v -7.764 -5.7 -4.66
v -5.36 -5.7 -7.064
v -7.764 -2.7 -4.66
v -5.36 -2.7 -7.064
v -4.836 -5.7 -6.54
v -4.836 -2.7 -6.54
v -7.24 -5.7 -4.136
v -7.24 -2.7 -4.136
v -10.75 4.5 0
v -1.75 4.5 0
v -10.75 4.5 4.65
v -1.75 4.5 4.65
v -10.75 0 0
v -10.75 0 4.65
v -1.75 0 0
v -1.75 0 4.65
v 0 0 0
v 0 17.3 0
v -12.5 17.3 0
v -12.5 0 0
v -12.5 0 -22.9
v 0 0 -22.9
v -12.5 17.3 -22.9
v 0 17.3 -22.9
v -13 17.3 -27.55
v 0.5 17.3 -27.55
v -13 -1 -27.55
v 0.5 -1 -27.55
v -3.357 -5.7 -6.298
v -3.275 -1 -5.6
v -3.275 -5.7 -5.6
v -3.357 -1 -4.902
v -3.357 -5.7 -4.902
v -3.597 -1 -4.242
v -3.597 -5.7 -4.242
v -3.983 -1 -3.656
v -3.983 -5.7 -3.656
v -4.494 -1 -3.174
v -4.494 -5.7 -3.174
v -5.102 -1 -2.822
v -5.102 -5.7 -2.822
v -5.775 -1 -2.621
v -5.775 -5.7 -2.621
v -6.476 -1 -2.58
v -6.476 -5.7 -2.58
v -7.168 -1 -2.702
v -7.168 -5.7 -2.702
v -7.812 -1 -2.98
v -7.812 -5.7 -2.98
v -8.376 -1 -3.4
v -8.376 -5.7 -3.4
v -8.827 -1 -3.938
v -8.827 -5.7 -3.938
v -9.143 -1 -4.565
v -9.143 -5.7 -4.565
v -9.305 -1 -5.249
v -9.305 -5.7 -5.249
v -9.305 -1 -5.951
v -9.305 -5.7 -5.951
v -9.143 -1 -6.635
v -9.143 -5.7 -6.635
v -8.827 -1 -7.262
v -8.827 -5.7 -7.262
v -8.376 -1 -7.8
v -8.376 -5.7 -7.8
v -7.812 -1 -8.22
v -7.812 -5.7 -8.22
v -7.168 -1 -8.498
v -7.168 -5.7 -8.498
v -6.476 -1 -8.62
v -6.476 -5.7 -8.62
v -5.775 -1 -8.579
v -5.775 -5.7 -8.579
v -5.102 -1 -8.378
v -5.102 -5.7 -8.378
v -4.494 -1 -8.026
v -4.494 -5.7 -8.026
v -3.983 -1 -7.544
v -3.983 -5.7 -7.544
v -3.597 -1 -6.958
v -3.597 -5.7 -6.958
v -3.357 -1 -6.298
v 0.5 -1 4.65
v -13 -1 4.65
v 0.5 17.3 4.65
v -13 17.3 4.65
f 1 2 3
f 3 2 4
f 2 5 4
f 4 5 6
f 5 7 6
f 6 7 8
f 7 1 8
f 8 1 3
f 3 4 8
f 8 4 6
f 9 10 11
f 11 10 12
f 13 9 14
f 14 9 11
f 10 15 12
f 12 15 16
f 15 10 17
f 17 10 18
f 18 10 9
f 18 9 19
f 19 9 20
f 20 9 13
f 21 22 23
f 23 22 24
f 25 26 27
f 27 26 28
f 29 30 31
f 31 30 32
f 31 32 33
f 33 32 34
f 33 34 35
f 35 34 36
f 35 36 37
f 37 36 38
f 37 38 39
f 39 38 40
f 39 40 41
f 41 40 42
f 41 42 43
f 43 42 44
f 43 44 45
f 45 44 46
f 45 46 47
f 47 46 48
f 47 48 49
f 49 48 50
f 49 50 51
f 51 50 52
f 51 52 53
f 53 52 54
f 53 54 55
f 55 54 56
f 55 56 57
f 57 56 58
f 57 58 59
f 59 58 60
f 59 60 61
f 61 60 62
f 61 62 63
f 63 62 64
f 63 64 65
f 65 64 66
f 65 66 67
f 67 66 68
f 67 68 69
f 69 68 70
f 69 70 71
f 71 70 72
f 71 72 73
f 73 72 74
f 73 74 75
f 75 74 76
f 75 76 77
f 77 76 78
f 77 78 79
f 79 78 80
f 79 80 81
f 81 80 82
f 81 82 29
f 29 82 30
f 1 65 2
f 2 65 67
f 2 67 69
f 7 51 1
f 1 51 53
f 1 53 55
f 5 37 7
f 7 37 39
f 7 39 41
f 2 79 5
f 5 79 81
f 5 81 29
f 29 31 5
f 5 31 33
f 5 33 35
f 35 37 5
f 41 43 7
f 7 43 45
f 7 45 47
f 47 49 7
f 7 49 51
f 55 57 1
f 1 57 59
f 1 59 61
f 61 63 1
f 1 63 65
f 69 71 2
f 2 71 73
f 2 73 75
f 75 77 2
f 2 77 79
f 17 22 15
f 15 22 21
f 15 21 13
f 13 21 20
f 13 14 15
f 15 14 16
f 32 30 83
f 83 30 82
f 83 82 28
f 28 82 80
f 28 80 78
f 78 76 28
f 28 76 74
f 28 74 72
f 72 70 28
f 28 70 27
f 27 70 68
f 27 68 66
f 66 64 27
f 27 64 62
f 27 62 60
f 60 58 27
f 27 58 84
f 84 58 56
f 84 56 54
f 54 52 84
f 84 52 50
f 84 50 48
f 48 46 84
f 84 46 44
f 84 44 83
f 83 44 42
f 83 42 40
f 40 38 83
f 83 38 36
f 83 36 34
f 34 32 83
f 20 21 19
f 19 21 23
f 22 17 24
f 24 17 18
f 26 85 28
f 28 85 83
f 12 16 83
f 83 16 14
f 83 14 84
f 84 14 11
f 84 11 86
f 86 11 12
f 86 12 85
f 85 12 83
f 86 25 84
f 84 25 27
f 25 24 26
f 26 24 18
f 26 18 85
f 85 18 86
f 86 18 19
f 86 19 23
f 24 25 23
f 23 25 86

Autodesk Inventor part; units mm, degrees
ref_plane "YZ Plane" through (0, 0, 0) normal (1, 0, 0) x (0, 1, 0)
ref_plane "XZ Plane" through (0, 0, 0) normal (0, 1, 0) x (-1, 0, 0)
ref_plane "XY Plane" through (0, 0, 0) normal (0, 0, 1) x (1, 0, 0)
sketch "Sketch1" plane through (0, 0, 0) normal (0, 1, 0) x (-1, 0, 0)
  line L0 (0, 0) -> (12.5, 0)
  line L1 (12.5, 0) -> (12.5, -22.9)
  line L2 (12.5, -22.9) -> (0, -22.9)
  line L3 (0, -22.9) -> (0, 0)
  line L4 (12.5, 0) -> (13, 0)
  line L5 (0, -22.9) -> (-0.5, -22.9)
  line L6 (13, 0) -> (13, 4.65)
  line L7 (-0.5, -22.9) -> (-0.5, -27.55)
  line L8 (13, 4.65) -> (-0.5, 4.65)
  line L9 (-0.5, 4.65) -> (-0.5, -27.55)
  line L10 (-0.5, -27.55) -> (13, -27.55)
  line L11 (13, -27.55) -> (13, 4.65)
  line L12 (6.25, 0) -> (6.25, 2.45)
  line L13 (6.25, -22.9) -> (6.25, -25.35)
  circle A0 centre (6.25, 2.45) radius 0.75
  circle A1 centre (6.25, -25.35) radius 0.75
  dimension "d0" = 12.5
  dimension "d1" = 22.9
  dimension "d2" = 0.5
  dimension "d3" = 0.5
  dimension "d4" = 4.65
  dimension "d5" = 4.65
  dimension "d6" = 2.45
  dimension "d7" = 2.45
  dimension "d8" = 1.5
  dimension "d9" = 1.5
extrude "Extrusion1" add sketch "Sketch1" along normal blind 17.3 contours A0 | L3 L5 L9 L8 L6 L4 L0 | A1 | L2 L1 L4 L11 L10 L7 L5
extrude "Extrusion2" add sketch "Sketch1" against normal blind 1 contours A0 | L3 L5 L9 L8 L6 L4 L0 | L0 L1 L2 L3 | A1 | L2 L1 L4 L11 L10 L7 L5
sketch "Sketch2" plane through (0, -1, 0) normal (0, -1, 0) x (1, 0, 0)
  line L0 (0.5, 4.65) -> (0.5, -27.55) projected
  line L1 (-12.5, -22.9) -> (0, -22.9) projected
  line L2 (-13, -27.55) -> (-13, 4.65) projected
  line L3 (-13, 4.65) -> (-13, 0)
  line L4 (-13, 0) -> (-6.3, 0)
  line L5 (0, 0) -> (-12.5, 0) projected
  line L6 (-6.3, 0) -> (-6.3, -5.6)
  circle A0 centre (-6.3, -5.6) radius 3.025
  dimension "d20" = 4.65
  dimension "d21" = 6.7
  dimension "d22" = 5.6
  dimension "d23" = 6.05
extrude "Extrusion3" add sketch "Sketch2" along normal blind 4.7
sketch "Sketch3" plane through (-6.3, -5.7, -5.6) normal (0, -1, 0) x (1, 0, 0)
  line L0 (0, 0) -> (1.385, 0)
  line L1 (0, 0) -> (0, 1.385)
  line L2 (1.385, 0) -> (1.385, 0.32)
  line L3 (0, 1.385) -> (-0.32, 1.385)
  line L4 (-0.32, 1.385) -> (0.32, 1.385)
  line L5 (0.32, 1.385) -> (0.32, -1.385)
  line L6 (0.32, -1.385) -> (-0.32, -1.385)
  line L7 (-0.32, -1.385) -> (-0.32, 1.385)
  line L8 (1.385, 0.32) -> (-1.385, 0.32)
  line L9 (-1.385, 0.32) -> (-1.385, -0.32)
  line L10 (-1.385, -0.32) -> (1.385, -0.32)
  line L11 (1.385, -0.32) -> (1.385, 0.32)
  point P0 (6.3, 5.6)
  point P1 (-0.32, 0.32)
  point P2 (-0.32, -0.32)
  point P3 (0.32, -0.32)
  point P4 (0.32, 0.32)
  dimension "d24" = 1.385
  dimension "d25" = 1.385
  dimension "d26" = 0.32
  dimension "d27" = 0.32
  dimension "d28" = 0.64
  dimension "d30" = 2.77
  dimension "d31" = 0.64
  dimension "d32" = 2.77
extrude "Extrusion4" [suppressed]
sketch "Sketch7" plane through (-13, 17.3, 4.65) normal (0, 0, 1) x (1, 0, 0)
  line L0 (0, -18.3) -> (13.5, -18.3) projected
  line L1 (6.75, -18.3) -> (6.75, -17.3)
  line L2 (6.75, -17.3) -> (2.25, -17.3)
  line L3 (0.5, -17.3) -> (13, -17.3) projected
  line L4 (2.25, -17.3) -> (11.25, -17.3)
  line L5 (11.25, -17.3) -> (11.25, -12.8)
  line L6 (11.25, -12.8) -> (2.25, -12.8)
  line L7 (2.25, -12.8) -> (2.25, -17.3)
  dimension "d47" = 1
  dimension "d48" = 4.5
  dimension "d49" = 4.5
  dimension "d50" = 9
extrude "Extrusion7" cut sketch "Sketch7" against normal up to next
sketch "Sketch8" plane through (-6.3, -5.7, -5.6) normal (0, -1, 0) x (1, 0, 0)
  line L0 (0, 0) -> (0, 1.7)
  line L1 (0, 1.7) -> (0.37, 1.7)
  line L2 (0.37, 1.7) -> (0.37, -1.7)
  line L3 (0.37, -1.7) -> (-0.37, -1.7)
  line L4 (-0.37, -1.7) -> (-0.37, 1.7)
  line L5 (-0.37, 1.7) -> (0, 1.7)
  line L6 (0, 0) -> (1.2021, -1.2021)
  line L7 (1.2021, -1.2021) -> (0.9405, -1.4637)
  line L8 (0.9405, -1.4637) -> (-1.4637, 0.9405)
  line L9 (-1.4637, 0.9405) -> (-0.9405, 1.4637)
  line L10 (-0.9405, 1.4637) -> (1.4637, -0.9405)
  line L11 (1.4637, -0.9405) -> (1.2021, -1.2021)
  point P0 (6.3, 5.6)
  dimension "d53" = 1.7
  dimension "d54" = 0.37
  dimension "d55" = 3.4
  dimension "d56" = 0.74
  dimension "d57" = 3.4
  dimension "d60" = 1.7
  dimension "d61" = 0.37
  dimension "d62" = 3.4
  dimension "d63" = 0.74
  dimension "d64" = 3.4
extrude "Extrusion8" cut sketch "Sketch8" against normal blind 3 contours L6 L2 L8 L4 L10 L0 | L0 L10 L2 L6 | L6 L7 L8 L2 | L2 L10 L11 L6 | L4 L8 L9 L10
properties part number "Servo Top Mount"
